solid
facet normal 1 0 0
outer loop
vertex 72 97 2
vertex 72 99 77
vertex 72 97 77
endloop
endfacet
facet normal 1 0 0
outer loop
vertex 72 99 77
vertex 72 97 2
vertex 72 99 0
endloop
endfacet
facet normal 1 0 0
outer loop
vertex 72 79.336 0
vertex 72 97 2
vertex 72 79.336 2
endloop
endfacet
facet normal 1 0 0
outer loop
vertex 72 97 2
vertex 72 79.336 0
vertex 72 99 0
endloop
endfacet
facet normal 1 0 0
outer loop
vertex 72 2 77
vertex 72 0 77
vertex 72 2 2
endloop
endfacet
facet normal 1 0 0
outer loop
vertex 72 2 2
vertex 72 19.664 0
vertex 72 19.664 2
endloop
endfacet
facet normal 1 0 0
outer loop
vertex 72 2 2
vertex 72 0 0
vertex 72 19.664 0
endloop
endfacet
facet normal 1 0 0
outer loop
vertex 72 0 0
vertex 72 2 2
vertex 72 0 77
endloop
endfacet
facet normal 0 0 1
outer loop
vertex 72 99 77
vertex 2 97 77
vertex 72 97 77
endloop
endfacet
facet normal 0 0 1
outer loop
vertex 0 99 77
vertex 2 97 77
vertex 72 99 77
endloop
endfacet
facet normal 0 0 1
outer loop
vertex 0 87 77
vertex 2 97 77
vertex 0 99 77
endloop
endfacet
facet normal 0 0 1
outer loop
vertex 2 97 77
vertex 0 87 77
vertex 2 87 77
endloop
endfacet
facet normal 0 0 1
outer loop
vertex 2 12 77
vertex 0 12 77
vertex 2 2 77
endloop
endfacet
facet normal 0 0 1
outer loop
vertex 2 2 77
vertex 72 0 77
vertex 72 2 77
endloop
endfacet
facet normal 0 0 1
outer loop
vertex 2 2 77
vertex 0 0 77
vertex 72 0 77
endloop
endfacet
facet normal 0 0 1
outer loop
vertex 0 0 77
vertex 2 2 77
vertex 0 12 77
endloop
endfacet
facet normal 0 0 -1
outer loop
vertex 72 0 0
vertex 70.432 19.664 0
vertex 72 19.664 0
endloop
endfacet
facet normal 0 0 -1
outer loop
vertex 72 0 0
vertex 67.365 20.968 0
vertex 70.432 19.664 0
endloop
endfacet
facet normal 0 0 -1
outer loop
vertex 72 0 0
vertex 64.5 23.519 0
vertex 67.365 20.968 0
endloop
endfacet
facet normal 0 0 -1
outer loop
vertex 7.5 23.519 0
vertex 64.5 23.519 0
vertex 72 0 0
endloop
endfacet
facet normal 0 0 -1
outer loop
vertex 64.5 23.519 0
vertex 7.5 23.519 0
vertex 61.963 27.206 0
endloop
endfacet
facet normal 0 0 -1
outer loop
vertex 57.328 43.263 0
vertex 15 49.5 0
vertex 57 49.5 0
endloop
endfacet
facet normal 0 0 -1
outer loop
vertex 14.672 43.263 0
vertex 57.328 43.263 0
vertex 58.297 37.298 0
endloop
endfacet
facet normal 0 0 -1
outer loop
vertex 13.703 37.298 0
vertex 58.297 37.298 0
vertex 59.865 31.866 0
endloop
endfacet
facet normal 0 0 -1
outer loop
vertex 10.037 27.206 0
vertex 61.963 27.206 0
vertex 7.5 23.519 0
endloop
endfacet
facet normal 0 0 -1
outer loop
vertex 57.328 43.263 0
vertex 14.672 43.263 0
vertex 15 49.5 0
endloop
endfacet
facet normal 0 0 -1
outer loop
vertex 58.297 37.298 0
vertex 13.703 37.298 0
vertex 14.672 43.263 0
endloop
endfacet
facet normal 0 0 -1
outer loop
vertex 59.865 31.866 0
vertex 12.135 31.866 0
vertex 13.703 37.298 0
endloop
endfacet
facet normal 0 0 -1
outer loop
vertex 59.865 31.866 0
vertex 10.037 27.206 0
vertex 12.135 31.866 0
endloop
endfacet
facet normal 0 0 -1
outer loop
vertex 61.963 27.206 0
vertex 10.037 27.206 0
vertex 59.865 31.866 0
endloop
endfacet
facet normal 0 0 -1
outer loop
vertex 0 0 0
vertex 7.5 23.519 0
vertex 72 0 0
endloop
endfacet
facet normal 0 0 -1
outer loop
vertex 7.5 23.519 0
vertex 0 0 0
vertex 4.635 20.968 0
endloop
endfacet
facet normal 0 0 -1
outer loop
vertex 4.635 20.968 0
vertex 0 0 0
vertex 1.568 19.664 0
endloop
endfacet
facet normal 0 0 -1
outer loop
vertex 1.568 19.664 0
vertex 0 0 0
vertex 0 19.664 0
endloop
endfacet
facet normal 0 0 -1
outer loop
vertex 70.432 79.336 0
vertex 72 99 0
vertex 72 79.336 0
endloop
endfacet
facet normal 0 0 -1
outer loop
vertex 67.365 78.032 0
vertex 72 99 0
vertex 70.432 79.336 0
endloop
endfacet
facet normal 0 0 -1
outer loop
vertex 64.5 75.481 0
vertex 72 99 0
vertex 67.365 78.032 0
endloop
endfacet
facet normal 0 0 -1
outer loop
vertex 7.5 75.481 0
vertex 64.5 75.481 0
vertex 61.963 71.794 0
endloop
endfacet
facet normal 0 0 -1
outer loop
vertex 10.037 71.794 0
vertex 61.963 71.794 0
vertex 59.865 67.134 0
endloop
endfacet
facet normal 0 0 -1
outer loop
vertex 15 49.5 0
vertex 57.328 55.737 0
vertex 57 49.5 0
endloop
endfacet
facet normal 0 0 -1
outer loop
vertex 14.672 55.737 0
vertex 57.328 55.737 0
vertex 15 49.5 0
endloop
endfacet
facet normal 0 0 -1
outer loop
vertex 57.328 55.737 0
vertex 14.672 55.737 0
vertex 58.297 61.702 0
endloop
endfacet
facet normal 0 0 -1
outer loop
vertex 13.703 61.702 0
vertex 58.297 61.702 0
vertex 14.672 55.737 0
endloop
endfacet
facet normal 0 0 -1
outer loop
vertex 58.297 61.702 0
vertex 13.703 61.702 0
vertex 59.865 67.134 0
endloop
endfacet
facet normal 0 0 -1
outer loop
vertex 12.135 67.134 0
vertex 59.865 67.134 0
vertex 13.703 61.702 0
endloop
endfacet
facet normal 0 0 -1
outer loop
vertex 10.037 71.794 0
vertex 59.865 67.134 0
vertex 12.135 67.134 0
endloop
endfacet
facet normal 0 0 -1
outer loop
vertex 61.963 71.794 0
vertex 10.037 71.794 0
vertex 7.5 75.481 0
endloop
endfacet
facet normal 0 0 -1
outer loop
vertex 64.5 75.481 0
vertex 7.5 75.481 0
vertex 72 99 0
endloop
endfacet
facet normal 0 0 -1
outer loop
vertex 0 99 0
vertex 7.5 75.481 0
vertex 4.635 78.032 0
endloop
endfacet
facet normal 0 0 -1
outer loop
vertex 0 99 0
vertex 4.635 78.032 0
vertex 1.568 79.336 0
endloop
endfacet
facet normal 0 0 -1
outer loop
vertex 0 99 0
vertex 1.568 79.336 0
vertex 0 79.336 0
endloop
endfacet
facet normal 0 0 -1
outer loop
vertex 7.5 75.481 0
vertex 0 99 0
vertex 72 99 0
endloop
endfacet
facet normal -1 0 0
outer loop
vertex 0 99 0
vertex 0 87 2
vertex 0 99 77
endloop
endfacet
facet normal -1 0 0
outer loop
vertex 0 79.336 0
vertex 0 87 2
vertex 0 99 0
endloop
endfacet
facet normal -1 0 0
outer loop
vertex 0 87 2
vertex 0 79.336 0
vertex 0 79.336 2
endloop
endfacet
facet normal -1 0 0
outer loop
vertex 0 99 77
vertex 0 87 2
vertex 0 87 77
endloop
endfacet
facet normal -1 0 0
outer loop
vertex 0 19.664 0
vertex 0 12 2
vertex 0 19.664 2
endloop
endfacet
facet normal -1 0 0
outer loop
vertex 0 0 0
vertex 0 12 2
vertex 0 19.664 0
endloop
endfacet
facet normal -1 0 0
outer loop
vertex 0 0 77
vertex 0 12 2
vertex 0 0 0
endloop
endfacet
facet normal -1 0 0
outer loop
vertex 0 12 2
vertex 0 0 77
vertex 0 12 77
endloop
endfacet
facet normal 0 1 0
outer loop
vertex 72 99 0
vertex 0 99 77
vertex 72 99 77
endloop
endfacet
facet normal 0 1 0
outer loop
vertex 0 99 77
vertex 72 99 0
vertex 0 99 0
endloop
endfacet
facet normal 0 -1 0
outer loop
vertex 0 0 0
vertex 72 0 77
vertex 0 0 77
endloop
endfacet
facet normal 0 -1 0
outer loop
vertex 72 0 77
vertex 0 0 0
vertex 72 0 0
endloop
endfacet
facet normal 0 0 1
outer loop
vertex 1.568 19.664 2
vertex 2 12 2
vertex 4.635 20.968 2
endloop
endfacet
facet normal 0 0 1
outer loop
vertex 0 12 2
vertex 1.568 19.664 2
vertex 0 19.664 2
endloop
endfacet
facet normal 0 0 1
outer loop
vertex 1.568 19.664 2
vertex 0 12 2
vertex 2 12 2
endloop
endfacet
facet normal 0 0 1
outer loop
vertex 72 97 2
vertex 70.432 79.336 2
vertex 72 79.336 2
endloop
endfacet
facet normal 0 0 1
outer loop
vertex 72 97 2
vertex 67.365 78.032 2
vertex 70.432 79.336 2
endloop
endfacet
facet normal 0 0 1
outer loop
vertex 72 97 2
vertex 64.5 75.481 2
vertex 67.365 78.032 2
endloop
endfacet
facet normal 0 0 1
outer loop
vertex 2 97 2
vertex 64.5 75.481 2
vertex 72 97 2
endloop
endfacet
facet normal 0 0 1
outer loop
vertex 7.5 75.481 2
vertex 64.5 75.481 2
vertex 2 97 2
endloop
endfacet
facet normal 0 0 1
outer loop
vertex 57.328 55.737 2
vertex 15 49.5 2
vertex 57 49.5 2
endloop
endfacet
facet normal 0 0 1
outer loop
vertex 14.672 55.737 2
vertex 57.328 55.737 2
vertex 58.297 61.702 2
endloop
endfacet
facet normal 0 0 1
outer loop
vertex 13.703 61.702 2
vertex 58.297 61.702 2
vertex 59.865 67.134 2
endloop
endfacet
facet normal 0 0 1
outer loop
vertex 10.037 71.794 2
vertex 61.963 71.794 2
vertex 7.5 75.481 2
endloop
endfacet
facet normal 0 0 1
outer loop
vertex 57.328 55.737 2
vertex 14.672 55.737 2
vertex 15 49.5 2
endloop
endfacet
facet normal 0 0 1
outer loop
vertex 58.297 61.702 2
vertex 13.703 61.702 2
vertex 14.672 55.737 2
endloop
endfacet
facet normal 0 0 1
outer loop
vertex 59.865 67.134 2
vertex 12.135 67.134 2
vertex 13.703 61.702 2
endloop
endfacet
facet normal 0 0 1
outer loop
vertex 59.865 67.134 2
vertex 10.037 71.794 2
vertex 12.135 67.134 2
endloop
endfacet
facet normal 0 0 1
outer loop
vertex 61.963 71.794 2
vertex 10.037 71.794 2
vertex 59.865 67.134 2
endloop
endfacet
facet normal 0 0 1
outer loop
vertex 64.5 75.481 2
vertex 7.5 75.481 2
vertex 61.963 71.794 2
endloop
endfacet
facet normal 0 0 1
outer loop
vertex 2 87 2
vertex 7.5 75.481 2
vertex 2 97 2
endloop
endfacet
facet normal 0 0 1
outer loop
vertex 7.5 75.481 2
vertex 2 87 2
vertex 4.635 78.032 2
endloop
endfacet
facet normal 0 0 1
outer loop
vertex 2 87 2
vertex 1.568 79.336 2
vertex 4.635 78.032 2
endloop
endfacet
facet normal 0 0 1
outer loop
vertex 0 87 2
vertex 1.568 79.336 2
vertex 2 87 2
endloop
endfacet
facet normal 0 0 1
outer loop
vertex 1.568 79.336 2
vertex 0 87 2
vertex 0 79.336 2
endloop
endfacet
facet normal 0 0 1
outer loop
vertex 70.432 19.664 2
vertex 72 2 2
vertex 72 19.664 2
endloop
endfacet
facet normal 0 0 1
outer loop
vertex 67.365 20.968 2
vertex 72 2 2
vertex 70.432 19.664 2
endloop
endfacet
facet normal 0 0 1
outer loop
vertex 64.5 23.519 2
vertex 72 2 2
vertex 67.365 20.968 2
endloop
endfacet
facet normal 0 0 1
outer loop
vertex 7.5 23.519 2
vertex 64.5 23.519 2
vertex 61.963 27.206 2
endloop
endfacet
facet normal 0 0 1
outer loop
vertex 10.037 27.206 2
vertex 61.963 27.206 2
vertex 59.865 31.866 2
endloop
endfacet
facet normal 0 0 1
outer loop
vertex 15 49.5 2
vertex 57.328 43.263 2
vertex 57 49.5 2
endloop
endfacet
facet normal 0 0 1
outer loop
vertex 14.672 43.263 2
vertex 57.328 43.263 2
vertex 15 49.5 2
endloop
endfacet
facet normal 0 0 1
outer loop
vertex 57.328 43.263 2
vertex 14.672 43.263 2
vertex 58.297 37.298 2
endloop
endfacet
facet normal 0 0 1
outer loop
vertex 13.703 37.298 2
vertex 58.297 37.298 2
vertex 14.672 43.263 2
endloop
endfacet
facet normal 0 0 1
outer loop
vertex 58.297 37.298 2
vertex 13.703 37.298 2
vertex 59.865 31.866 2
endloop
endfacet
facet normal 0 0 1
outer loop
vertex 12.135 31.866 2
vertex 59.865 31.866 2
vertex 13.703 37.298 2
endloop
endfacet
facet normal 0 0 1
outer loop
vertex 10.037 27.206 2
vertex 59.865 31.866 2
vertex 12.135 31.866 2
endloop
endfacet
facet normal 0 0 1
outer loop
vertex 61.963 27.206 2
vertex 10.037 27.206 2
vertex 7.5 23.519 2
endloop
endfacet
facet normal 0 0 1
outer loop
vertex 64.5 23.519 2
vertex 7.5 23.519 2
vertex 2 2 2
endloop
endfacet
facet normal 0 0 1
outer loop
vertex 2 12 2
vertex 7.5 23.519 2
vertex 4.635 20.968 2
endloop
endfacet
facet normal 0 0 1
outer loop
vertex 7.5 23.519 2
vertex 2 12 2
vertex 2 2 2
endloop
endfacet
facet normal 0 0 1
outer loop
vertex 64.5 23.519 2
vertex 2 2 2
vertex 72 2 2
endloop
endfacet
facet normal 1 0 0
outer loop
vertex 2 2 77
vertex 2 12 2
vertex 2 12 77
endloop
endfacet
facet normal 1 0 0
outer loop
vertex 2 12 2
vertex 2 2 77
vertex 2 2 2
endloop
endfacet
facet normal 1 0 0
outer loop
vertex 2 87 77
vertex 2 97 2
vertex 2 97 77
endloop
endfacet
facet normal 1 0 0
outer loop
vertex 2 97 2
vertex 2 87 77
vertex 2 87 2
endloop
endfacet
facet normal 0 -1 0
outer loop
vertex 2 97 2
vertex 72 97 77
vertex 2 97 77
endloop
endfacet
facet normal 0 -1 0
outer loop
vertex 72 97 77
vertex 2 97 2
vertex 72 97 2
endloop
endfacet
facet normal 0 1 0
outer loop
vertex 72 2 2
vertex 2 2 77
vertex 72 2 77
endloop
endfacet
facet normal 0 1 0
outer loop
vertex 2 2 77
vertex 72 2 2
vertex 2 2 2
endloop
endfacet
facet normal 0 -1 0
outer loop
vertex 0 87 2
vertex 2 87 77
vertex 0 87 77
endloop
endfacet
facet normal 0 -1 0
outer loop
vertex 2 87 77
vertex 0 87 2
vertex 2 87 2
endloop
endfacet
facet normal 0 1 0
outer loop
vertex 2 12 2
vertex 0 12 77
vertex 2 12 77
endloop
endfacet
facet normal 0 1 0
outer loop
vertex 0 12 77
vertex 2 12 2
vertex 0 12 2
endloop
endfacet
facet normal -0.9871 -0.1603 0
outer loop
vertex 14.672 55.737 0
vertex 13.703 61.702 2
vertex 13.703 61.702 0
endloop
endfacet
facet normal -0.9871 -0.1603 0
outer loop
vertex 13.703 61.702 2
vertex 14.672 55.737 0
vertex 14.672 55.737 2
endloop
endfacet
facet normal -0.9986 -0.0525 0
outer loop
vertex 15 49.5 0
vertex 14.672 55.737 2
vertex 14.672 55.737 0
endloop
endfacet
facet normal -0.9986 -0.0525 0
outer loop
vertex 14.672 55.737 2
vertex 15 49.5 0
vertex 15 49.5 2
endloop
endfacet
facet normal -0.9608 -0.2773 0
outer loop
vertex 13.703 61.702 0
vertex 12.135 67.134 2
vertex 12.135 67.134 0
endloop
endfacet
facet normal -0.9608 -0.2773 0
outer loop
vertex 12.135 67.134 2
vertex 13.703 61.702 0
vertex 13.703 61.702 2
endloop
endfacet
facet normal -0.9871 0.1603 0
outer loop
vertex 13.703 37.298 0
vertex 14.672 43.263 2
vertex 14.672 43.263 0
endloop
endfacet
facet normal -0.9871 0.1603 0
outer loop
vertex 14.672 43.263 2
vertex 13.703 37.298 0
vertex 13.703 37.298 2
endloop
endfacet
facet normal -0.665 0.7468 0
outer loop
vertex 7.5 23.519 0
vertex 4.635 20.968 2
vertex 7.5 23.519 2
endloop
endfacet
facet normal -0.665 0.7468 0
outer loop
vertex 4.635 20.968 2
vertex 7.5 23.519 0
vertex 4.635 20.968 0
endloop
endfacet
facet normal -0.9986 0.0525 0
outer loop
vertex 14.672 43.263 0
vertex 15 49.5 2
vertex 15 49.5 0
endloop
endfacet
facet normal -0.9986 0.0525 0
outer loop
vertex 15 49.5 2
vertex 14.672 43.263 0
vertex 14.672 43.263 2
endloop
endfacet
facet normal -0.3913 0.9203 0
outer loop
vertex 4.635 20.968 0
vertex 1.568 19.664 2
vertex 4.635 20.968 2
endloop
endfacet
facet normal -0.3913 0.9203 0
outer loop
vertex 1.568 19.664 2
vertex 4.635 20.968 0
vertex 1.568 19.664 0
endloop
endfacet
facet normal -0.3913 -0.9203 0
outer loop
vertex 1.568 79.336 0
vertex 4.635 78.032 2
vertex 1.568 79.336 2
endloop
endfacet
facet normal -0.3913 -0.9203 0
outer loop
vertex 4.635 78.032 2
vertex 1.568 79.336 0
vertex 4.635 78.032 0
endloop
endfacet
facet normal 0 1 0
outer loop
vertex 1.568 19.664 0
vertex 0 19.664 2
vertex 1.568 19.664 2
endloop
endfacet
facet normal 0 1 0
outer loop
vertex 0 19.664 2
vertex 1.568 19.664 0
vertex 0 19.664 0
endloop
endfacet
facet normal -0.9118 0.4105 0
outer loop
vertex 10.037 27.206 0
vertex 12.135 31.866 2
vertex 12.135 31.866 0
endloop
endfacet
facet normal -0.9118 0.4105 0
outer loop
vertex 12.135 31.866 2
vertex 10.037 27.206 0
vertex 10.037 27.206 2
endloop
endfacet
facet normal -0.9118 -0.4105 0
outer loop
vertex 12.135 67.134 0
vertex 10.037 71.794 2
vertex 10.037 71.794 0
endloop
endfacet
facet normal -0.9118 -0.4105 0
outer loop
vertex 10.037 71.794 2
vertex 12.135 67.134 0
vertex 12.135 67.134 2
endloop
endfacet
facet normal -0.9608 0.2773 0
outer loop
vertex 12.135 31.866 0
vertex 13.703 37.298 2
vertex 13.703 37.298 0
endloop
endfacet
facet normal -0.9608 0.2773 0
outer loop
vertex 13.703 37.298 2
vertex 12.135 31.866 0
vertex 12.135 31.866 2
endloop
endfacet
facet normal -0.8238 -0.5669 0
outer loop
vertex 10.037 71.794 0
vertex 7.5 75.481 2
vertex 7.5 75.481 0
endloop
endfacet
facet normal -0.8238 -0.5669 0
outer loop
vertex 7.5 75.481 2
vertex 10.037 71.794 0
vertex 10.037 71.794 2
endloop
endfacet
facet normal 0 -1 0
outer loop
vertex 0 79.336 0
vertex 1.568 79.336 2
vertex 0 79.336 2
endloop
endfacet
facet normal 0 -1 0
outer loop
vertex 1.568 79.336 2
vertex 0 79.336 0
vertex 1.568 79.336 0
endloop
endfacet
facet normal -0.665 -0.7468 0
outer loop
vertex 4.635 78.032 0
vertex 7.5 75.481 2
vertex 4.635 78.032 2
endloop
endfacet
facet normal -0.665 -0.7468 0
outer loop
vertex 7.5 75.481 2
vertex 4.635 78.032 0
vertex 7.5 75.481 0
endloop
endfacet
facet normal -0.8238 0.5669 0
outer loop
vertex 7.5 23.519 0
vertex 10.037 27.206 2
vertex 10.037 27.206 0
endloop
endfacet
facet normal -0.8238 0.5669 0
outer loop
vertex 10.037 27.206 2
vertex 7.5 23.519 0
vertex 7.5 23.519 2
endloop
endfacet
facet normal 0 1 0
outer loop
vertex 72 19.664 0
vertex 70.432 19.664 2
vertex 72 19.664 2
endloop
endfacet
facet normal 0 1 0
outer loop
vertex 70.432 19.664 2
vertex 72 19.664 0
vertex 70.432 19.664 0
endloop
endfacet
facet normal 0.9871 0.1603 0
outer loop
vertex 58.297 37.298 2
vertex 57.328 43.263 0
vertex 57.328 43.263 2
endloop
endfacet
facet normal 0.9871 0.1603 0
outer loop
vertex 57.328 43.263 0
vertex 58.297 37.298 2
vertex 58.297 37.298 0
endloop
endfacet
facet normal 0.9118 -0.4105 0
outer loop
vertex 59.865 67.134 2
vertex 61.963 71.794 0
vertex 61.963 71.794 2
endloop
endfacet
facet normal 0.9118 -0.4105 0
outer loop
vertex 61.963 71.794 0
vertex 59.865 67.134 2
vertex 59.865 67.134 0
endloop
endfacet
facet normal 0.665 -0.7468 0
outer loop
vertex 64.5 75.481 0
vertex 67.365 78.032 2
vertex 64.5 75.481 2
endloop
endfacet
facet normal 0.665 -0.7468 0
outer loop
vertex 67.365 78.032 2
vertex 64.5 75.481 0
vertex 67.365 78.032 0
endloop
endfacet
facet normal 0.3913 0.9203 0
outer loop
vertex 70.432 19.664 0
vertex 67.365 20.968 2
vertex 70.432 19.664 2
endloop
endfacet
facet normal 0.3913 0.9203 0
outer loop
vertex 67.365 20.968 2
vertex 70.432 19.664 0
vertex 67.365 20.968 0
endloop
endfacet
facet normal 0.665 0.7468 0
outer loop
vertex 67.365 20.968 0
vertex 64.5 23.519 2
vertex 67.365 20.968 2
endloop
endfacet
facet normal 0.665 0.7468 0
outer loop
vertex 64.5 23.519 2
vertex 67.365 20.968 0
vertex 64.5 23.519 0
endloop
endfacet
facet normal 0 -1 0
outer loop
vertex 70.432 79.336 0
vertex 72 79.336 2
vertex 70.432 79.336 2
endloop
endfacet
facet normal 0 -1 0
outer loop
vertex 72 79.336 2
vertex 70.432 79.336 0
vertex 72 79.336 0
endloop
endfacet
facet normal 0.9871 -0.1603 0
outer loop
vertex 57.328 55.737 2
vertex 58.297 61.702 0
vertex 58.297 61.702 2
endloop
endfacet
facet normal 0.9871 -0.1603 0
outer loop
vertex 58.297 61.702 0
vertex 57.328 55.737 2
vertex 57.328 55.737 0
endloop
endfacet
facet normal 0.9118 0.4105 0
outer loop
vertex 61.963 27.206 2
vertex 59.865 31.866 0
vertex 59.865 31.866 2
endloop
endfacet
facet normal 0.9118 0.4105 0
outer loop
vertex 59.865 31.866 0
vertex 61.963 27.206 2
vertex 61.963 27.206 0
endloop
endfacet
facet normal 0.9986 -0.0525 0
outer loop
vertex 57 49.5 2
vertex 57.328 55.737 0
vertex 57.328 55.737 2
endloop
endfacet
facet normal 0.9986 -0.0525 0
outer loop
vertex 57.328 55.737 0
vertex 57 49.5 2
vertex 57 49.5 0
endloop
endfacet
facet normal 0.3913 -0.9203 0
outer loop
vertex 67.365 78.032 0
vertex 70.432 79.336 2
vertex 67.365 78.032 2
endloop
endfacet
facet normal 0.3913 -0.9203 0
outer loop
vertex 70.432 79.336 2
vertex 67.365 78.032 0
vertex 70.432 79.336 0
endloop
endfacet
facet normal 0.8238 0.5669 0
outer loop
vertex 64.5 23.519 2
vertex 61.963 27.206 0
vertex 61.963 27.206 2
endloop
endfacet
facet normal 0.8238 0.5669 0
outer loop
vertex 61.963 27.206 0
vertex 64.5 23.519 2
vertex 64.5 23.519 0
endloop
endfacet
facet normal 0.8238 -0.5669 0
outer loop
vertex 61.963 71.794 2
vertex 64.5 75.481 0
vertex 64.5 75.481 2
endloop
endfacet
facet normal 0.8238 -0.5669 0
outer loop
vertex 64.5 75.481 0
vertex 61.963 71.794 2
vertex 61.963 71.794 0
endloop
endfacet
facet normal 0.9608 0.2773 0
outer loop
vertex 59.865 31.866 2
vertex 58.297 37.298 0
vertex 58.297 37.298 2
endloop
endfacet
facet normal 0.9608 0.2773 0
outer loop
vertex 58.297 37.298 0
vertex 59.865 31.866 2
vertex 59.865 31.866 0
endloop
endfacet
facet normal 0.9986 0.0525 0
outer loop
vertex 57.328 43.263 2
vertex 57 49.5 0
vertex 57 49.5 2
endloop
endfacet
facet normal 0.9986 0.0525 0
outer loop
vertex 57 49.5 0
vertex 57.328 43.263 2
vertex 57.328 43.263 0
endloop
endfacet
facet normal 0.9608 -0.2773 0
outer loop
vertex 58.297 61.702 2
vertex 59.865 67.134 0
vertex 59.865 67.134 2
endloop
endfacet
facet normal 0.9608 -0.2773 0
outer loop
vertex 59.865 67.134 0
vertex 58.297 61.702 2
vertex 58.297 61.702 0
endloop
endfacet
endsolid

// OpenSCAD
CARD = [
	68,
	95,
	75
];

FLOOR = 2;
WALL = 2;

HOLDER = 10;

FINGER_RAD = 15;
FINGER_SCALE = 2;

DIM = [
	CARD.x+2*WALL,
	CARD.y+2*WALL,
	CARD.z+FLOOR
];


difference(){
	
	cube([ CARD.x+2*WALL , CARD.y+2*WALL , CARD.z+FLOOR	]);
	
	// CARD
	translate([ WALL , WALL , FLOOR ]) cube([ DIM.x , CARD.y , CARD.z+0.1 ]);
	// WALL OPENING
	translate([ -0.1 , WALL+HOLDER , FLOOR ]) cube([ DIM.x+0.2 , CARD.y-2*HOLDER , DIM.z ]);
	
	// FINGER 
	translate([ 0 , 0.5*DIM.y , -0.1 ]) scale([ 1 , FINGER_SCALE , 1 ]) cylinder( h=FLOOR+0.2 , r=FINGER_RAD );
	translate([ DIM.x , 0.5*DIM.y , -0.1 ]) scale([ 1 , FINGER_SCALE , 1 ]) cylinder( h=FLOOR+0.2 , r=FINGER_RAD );
}
